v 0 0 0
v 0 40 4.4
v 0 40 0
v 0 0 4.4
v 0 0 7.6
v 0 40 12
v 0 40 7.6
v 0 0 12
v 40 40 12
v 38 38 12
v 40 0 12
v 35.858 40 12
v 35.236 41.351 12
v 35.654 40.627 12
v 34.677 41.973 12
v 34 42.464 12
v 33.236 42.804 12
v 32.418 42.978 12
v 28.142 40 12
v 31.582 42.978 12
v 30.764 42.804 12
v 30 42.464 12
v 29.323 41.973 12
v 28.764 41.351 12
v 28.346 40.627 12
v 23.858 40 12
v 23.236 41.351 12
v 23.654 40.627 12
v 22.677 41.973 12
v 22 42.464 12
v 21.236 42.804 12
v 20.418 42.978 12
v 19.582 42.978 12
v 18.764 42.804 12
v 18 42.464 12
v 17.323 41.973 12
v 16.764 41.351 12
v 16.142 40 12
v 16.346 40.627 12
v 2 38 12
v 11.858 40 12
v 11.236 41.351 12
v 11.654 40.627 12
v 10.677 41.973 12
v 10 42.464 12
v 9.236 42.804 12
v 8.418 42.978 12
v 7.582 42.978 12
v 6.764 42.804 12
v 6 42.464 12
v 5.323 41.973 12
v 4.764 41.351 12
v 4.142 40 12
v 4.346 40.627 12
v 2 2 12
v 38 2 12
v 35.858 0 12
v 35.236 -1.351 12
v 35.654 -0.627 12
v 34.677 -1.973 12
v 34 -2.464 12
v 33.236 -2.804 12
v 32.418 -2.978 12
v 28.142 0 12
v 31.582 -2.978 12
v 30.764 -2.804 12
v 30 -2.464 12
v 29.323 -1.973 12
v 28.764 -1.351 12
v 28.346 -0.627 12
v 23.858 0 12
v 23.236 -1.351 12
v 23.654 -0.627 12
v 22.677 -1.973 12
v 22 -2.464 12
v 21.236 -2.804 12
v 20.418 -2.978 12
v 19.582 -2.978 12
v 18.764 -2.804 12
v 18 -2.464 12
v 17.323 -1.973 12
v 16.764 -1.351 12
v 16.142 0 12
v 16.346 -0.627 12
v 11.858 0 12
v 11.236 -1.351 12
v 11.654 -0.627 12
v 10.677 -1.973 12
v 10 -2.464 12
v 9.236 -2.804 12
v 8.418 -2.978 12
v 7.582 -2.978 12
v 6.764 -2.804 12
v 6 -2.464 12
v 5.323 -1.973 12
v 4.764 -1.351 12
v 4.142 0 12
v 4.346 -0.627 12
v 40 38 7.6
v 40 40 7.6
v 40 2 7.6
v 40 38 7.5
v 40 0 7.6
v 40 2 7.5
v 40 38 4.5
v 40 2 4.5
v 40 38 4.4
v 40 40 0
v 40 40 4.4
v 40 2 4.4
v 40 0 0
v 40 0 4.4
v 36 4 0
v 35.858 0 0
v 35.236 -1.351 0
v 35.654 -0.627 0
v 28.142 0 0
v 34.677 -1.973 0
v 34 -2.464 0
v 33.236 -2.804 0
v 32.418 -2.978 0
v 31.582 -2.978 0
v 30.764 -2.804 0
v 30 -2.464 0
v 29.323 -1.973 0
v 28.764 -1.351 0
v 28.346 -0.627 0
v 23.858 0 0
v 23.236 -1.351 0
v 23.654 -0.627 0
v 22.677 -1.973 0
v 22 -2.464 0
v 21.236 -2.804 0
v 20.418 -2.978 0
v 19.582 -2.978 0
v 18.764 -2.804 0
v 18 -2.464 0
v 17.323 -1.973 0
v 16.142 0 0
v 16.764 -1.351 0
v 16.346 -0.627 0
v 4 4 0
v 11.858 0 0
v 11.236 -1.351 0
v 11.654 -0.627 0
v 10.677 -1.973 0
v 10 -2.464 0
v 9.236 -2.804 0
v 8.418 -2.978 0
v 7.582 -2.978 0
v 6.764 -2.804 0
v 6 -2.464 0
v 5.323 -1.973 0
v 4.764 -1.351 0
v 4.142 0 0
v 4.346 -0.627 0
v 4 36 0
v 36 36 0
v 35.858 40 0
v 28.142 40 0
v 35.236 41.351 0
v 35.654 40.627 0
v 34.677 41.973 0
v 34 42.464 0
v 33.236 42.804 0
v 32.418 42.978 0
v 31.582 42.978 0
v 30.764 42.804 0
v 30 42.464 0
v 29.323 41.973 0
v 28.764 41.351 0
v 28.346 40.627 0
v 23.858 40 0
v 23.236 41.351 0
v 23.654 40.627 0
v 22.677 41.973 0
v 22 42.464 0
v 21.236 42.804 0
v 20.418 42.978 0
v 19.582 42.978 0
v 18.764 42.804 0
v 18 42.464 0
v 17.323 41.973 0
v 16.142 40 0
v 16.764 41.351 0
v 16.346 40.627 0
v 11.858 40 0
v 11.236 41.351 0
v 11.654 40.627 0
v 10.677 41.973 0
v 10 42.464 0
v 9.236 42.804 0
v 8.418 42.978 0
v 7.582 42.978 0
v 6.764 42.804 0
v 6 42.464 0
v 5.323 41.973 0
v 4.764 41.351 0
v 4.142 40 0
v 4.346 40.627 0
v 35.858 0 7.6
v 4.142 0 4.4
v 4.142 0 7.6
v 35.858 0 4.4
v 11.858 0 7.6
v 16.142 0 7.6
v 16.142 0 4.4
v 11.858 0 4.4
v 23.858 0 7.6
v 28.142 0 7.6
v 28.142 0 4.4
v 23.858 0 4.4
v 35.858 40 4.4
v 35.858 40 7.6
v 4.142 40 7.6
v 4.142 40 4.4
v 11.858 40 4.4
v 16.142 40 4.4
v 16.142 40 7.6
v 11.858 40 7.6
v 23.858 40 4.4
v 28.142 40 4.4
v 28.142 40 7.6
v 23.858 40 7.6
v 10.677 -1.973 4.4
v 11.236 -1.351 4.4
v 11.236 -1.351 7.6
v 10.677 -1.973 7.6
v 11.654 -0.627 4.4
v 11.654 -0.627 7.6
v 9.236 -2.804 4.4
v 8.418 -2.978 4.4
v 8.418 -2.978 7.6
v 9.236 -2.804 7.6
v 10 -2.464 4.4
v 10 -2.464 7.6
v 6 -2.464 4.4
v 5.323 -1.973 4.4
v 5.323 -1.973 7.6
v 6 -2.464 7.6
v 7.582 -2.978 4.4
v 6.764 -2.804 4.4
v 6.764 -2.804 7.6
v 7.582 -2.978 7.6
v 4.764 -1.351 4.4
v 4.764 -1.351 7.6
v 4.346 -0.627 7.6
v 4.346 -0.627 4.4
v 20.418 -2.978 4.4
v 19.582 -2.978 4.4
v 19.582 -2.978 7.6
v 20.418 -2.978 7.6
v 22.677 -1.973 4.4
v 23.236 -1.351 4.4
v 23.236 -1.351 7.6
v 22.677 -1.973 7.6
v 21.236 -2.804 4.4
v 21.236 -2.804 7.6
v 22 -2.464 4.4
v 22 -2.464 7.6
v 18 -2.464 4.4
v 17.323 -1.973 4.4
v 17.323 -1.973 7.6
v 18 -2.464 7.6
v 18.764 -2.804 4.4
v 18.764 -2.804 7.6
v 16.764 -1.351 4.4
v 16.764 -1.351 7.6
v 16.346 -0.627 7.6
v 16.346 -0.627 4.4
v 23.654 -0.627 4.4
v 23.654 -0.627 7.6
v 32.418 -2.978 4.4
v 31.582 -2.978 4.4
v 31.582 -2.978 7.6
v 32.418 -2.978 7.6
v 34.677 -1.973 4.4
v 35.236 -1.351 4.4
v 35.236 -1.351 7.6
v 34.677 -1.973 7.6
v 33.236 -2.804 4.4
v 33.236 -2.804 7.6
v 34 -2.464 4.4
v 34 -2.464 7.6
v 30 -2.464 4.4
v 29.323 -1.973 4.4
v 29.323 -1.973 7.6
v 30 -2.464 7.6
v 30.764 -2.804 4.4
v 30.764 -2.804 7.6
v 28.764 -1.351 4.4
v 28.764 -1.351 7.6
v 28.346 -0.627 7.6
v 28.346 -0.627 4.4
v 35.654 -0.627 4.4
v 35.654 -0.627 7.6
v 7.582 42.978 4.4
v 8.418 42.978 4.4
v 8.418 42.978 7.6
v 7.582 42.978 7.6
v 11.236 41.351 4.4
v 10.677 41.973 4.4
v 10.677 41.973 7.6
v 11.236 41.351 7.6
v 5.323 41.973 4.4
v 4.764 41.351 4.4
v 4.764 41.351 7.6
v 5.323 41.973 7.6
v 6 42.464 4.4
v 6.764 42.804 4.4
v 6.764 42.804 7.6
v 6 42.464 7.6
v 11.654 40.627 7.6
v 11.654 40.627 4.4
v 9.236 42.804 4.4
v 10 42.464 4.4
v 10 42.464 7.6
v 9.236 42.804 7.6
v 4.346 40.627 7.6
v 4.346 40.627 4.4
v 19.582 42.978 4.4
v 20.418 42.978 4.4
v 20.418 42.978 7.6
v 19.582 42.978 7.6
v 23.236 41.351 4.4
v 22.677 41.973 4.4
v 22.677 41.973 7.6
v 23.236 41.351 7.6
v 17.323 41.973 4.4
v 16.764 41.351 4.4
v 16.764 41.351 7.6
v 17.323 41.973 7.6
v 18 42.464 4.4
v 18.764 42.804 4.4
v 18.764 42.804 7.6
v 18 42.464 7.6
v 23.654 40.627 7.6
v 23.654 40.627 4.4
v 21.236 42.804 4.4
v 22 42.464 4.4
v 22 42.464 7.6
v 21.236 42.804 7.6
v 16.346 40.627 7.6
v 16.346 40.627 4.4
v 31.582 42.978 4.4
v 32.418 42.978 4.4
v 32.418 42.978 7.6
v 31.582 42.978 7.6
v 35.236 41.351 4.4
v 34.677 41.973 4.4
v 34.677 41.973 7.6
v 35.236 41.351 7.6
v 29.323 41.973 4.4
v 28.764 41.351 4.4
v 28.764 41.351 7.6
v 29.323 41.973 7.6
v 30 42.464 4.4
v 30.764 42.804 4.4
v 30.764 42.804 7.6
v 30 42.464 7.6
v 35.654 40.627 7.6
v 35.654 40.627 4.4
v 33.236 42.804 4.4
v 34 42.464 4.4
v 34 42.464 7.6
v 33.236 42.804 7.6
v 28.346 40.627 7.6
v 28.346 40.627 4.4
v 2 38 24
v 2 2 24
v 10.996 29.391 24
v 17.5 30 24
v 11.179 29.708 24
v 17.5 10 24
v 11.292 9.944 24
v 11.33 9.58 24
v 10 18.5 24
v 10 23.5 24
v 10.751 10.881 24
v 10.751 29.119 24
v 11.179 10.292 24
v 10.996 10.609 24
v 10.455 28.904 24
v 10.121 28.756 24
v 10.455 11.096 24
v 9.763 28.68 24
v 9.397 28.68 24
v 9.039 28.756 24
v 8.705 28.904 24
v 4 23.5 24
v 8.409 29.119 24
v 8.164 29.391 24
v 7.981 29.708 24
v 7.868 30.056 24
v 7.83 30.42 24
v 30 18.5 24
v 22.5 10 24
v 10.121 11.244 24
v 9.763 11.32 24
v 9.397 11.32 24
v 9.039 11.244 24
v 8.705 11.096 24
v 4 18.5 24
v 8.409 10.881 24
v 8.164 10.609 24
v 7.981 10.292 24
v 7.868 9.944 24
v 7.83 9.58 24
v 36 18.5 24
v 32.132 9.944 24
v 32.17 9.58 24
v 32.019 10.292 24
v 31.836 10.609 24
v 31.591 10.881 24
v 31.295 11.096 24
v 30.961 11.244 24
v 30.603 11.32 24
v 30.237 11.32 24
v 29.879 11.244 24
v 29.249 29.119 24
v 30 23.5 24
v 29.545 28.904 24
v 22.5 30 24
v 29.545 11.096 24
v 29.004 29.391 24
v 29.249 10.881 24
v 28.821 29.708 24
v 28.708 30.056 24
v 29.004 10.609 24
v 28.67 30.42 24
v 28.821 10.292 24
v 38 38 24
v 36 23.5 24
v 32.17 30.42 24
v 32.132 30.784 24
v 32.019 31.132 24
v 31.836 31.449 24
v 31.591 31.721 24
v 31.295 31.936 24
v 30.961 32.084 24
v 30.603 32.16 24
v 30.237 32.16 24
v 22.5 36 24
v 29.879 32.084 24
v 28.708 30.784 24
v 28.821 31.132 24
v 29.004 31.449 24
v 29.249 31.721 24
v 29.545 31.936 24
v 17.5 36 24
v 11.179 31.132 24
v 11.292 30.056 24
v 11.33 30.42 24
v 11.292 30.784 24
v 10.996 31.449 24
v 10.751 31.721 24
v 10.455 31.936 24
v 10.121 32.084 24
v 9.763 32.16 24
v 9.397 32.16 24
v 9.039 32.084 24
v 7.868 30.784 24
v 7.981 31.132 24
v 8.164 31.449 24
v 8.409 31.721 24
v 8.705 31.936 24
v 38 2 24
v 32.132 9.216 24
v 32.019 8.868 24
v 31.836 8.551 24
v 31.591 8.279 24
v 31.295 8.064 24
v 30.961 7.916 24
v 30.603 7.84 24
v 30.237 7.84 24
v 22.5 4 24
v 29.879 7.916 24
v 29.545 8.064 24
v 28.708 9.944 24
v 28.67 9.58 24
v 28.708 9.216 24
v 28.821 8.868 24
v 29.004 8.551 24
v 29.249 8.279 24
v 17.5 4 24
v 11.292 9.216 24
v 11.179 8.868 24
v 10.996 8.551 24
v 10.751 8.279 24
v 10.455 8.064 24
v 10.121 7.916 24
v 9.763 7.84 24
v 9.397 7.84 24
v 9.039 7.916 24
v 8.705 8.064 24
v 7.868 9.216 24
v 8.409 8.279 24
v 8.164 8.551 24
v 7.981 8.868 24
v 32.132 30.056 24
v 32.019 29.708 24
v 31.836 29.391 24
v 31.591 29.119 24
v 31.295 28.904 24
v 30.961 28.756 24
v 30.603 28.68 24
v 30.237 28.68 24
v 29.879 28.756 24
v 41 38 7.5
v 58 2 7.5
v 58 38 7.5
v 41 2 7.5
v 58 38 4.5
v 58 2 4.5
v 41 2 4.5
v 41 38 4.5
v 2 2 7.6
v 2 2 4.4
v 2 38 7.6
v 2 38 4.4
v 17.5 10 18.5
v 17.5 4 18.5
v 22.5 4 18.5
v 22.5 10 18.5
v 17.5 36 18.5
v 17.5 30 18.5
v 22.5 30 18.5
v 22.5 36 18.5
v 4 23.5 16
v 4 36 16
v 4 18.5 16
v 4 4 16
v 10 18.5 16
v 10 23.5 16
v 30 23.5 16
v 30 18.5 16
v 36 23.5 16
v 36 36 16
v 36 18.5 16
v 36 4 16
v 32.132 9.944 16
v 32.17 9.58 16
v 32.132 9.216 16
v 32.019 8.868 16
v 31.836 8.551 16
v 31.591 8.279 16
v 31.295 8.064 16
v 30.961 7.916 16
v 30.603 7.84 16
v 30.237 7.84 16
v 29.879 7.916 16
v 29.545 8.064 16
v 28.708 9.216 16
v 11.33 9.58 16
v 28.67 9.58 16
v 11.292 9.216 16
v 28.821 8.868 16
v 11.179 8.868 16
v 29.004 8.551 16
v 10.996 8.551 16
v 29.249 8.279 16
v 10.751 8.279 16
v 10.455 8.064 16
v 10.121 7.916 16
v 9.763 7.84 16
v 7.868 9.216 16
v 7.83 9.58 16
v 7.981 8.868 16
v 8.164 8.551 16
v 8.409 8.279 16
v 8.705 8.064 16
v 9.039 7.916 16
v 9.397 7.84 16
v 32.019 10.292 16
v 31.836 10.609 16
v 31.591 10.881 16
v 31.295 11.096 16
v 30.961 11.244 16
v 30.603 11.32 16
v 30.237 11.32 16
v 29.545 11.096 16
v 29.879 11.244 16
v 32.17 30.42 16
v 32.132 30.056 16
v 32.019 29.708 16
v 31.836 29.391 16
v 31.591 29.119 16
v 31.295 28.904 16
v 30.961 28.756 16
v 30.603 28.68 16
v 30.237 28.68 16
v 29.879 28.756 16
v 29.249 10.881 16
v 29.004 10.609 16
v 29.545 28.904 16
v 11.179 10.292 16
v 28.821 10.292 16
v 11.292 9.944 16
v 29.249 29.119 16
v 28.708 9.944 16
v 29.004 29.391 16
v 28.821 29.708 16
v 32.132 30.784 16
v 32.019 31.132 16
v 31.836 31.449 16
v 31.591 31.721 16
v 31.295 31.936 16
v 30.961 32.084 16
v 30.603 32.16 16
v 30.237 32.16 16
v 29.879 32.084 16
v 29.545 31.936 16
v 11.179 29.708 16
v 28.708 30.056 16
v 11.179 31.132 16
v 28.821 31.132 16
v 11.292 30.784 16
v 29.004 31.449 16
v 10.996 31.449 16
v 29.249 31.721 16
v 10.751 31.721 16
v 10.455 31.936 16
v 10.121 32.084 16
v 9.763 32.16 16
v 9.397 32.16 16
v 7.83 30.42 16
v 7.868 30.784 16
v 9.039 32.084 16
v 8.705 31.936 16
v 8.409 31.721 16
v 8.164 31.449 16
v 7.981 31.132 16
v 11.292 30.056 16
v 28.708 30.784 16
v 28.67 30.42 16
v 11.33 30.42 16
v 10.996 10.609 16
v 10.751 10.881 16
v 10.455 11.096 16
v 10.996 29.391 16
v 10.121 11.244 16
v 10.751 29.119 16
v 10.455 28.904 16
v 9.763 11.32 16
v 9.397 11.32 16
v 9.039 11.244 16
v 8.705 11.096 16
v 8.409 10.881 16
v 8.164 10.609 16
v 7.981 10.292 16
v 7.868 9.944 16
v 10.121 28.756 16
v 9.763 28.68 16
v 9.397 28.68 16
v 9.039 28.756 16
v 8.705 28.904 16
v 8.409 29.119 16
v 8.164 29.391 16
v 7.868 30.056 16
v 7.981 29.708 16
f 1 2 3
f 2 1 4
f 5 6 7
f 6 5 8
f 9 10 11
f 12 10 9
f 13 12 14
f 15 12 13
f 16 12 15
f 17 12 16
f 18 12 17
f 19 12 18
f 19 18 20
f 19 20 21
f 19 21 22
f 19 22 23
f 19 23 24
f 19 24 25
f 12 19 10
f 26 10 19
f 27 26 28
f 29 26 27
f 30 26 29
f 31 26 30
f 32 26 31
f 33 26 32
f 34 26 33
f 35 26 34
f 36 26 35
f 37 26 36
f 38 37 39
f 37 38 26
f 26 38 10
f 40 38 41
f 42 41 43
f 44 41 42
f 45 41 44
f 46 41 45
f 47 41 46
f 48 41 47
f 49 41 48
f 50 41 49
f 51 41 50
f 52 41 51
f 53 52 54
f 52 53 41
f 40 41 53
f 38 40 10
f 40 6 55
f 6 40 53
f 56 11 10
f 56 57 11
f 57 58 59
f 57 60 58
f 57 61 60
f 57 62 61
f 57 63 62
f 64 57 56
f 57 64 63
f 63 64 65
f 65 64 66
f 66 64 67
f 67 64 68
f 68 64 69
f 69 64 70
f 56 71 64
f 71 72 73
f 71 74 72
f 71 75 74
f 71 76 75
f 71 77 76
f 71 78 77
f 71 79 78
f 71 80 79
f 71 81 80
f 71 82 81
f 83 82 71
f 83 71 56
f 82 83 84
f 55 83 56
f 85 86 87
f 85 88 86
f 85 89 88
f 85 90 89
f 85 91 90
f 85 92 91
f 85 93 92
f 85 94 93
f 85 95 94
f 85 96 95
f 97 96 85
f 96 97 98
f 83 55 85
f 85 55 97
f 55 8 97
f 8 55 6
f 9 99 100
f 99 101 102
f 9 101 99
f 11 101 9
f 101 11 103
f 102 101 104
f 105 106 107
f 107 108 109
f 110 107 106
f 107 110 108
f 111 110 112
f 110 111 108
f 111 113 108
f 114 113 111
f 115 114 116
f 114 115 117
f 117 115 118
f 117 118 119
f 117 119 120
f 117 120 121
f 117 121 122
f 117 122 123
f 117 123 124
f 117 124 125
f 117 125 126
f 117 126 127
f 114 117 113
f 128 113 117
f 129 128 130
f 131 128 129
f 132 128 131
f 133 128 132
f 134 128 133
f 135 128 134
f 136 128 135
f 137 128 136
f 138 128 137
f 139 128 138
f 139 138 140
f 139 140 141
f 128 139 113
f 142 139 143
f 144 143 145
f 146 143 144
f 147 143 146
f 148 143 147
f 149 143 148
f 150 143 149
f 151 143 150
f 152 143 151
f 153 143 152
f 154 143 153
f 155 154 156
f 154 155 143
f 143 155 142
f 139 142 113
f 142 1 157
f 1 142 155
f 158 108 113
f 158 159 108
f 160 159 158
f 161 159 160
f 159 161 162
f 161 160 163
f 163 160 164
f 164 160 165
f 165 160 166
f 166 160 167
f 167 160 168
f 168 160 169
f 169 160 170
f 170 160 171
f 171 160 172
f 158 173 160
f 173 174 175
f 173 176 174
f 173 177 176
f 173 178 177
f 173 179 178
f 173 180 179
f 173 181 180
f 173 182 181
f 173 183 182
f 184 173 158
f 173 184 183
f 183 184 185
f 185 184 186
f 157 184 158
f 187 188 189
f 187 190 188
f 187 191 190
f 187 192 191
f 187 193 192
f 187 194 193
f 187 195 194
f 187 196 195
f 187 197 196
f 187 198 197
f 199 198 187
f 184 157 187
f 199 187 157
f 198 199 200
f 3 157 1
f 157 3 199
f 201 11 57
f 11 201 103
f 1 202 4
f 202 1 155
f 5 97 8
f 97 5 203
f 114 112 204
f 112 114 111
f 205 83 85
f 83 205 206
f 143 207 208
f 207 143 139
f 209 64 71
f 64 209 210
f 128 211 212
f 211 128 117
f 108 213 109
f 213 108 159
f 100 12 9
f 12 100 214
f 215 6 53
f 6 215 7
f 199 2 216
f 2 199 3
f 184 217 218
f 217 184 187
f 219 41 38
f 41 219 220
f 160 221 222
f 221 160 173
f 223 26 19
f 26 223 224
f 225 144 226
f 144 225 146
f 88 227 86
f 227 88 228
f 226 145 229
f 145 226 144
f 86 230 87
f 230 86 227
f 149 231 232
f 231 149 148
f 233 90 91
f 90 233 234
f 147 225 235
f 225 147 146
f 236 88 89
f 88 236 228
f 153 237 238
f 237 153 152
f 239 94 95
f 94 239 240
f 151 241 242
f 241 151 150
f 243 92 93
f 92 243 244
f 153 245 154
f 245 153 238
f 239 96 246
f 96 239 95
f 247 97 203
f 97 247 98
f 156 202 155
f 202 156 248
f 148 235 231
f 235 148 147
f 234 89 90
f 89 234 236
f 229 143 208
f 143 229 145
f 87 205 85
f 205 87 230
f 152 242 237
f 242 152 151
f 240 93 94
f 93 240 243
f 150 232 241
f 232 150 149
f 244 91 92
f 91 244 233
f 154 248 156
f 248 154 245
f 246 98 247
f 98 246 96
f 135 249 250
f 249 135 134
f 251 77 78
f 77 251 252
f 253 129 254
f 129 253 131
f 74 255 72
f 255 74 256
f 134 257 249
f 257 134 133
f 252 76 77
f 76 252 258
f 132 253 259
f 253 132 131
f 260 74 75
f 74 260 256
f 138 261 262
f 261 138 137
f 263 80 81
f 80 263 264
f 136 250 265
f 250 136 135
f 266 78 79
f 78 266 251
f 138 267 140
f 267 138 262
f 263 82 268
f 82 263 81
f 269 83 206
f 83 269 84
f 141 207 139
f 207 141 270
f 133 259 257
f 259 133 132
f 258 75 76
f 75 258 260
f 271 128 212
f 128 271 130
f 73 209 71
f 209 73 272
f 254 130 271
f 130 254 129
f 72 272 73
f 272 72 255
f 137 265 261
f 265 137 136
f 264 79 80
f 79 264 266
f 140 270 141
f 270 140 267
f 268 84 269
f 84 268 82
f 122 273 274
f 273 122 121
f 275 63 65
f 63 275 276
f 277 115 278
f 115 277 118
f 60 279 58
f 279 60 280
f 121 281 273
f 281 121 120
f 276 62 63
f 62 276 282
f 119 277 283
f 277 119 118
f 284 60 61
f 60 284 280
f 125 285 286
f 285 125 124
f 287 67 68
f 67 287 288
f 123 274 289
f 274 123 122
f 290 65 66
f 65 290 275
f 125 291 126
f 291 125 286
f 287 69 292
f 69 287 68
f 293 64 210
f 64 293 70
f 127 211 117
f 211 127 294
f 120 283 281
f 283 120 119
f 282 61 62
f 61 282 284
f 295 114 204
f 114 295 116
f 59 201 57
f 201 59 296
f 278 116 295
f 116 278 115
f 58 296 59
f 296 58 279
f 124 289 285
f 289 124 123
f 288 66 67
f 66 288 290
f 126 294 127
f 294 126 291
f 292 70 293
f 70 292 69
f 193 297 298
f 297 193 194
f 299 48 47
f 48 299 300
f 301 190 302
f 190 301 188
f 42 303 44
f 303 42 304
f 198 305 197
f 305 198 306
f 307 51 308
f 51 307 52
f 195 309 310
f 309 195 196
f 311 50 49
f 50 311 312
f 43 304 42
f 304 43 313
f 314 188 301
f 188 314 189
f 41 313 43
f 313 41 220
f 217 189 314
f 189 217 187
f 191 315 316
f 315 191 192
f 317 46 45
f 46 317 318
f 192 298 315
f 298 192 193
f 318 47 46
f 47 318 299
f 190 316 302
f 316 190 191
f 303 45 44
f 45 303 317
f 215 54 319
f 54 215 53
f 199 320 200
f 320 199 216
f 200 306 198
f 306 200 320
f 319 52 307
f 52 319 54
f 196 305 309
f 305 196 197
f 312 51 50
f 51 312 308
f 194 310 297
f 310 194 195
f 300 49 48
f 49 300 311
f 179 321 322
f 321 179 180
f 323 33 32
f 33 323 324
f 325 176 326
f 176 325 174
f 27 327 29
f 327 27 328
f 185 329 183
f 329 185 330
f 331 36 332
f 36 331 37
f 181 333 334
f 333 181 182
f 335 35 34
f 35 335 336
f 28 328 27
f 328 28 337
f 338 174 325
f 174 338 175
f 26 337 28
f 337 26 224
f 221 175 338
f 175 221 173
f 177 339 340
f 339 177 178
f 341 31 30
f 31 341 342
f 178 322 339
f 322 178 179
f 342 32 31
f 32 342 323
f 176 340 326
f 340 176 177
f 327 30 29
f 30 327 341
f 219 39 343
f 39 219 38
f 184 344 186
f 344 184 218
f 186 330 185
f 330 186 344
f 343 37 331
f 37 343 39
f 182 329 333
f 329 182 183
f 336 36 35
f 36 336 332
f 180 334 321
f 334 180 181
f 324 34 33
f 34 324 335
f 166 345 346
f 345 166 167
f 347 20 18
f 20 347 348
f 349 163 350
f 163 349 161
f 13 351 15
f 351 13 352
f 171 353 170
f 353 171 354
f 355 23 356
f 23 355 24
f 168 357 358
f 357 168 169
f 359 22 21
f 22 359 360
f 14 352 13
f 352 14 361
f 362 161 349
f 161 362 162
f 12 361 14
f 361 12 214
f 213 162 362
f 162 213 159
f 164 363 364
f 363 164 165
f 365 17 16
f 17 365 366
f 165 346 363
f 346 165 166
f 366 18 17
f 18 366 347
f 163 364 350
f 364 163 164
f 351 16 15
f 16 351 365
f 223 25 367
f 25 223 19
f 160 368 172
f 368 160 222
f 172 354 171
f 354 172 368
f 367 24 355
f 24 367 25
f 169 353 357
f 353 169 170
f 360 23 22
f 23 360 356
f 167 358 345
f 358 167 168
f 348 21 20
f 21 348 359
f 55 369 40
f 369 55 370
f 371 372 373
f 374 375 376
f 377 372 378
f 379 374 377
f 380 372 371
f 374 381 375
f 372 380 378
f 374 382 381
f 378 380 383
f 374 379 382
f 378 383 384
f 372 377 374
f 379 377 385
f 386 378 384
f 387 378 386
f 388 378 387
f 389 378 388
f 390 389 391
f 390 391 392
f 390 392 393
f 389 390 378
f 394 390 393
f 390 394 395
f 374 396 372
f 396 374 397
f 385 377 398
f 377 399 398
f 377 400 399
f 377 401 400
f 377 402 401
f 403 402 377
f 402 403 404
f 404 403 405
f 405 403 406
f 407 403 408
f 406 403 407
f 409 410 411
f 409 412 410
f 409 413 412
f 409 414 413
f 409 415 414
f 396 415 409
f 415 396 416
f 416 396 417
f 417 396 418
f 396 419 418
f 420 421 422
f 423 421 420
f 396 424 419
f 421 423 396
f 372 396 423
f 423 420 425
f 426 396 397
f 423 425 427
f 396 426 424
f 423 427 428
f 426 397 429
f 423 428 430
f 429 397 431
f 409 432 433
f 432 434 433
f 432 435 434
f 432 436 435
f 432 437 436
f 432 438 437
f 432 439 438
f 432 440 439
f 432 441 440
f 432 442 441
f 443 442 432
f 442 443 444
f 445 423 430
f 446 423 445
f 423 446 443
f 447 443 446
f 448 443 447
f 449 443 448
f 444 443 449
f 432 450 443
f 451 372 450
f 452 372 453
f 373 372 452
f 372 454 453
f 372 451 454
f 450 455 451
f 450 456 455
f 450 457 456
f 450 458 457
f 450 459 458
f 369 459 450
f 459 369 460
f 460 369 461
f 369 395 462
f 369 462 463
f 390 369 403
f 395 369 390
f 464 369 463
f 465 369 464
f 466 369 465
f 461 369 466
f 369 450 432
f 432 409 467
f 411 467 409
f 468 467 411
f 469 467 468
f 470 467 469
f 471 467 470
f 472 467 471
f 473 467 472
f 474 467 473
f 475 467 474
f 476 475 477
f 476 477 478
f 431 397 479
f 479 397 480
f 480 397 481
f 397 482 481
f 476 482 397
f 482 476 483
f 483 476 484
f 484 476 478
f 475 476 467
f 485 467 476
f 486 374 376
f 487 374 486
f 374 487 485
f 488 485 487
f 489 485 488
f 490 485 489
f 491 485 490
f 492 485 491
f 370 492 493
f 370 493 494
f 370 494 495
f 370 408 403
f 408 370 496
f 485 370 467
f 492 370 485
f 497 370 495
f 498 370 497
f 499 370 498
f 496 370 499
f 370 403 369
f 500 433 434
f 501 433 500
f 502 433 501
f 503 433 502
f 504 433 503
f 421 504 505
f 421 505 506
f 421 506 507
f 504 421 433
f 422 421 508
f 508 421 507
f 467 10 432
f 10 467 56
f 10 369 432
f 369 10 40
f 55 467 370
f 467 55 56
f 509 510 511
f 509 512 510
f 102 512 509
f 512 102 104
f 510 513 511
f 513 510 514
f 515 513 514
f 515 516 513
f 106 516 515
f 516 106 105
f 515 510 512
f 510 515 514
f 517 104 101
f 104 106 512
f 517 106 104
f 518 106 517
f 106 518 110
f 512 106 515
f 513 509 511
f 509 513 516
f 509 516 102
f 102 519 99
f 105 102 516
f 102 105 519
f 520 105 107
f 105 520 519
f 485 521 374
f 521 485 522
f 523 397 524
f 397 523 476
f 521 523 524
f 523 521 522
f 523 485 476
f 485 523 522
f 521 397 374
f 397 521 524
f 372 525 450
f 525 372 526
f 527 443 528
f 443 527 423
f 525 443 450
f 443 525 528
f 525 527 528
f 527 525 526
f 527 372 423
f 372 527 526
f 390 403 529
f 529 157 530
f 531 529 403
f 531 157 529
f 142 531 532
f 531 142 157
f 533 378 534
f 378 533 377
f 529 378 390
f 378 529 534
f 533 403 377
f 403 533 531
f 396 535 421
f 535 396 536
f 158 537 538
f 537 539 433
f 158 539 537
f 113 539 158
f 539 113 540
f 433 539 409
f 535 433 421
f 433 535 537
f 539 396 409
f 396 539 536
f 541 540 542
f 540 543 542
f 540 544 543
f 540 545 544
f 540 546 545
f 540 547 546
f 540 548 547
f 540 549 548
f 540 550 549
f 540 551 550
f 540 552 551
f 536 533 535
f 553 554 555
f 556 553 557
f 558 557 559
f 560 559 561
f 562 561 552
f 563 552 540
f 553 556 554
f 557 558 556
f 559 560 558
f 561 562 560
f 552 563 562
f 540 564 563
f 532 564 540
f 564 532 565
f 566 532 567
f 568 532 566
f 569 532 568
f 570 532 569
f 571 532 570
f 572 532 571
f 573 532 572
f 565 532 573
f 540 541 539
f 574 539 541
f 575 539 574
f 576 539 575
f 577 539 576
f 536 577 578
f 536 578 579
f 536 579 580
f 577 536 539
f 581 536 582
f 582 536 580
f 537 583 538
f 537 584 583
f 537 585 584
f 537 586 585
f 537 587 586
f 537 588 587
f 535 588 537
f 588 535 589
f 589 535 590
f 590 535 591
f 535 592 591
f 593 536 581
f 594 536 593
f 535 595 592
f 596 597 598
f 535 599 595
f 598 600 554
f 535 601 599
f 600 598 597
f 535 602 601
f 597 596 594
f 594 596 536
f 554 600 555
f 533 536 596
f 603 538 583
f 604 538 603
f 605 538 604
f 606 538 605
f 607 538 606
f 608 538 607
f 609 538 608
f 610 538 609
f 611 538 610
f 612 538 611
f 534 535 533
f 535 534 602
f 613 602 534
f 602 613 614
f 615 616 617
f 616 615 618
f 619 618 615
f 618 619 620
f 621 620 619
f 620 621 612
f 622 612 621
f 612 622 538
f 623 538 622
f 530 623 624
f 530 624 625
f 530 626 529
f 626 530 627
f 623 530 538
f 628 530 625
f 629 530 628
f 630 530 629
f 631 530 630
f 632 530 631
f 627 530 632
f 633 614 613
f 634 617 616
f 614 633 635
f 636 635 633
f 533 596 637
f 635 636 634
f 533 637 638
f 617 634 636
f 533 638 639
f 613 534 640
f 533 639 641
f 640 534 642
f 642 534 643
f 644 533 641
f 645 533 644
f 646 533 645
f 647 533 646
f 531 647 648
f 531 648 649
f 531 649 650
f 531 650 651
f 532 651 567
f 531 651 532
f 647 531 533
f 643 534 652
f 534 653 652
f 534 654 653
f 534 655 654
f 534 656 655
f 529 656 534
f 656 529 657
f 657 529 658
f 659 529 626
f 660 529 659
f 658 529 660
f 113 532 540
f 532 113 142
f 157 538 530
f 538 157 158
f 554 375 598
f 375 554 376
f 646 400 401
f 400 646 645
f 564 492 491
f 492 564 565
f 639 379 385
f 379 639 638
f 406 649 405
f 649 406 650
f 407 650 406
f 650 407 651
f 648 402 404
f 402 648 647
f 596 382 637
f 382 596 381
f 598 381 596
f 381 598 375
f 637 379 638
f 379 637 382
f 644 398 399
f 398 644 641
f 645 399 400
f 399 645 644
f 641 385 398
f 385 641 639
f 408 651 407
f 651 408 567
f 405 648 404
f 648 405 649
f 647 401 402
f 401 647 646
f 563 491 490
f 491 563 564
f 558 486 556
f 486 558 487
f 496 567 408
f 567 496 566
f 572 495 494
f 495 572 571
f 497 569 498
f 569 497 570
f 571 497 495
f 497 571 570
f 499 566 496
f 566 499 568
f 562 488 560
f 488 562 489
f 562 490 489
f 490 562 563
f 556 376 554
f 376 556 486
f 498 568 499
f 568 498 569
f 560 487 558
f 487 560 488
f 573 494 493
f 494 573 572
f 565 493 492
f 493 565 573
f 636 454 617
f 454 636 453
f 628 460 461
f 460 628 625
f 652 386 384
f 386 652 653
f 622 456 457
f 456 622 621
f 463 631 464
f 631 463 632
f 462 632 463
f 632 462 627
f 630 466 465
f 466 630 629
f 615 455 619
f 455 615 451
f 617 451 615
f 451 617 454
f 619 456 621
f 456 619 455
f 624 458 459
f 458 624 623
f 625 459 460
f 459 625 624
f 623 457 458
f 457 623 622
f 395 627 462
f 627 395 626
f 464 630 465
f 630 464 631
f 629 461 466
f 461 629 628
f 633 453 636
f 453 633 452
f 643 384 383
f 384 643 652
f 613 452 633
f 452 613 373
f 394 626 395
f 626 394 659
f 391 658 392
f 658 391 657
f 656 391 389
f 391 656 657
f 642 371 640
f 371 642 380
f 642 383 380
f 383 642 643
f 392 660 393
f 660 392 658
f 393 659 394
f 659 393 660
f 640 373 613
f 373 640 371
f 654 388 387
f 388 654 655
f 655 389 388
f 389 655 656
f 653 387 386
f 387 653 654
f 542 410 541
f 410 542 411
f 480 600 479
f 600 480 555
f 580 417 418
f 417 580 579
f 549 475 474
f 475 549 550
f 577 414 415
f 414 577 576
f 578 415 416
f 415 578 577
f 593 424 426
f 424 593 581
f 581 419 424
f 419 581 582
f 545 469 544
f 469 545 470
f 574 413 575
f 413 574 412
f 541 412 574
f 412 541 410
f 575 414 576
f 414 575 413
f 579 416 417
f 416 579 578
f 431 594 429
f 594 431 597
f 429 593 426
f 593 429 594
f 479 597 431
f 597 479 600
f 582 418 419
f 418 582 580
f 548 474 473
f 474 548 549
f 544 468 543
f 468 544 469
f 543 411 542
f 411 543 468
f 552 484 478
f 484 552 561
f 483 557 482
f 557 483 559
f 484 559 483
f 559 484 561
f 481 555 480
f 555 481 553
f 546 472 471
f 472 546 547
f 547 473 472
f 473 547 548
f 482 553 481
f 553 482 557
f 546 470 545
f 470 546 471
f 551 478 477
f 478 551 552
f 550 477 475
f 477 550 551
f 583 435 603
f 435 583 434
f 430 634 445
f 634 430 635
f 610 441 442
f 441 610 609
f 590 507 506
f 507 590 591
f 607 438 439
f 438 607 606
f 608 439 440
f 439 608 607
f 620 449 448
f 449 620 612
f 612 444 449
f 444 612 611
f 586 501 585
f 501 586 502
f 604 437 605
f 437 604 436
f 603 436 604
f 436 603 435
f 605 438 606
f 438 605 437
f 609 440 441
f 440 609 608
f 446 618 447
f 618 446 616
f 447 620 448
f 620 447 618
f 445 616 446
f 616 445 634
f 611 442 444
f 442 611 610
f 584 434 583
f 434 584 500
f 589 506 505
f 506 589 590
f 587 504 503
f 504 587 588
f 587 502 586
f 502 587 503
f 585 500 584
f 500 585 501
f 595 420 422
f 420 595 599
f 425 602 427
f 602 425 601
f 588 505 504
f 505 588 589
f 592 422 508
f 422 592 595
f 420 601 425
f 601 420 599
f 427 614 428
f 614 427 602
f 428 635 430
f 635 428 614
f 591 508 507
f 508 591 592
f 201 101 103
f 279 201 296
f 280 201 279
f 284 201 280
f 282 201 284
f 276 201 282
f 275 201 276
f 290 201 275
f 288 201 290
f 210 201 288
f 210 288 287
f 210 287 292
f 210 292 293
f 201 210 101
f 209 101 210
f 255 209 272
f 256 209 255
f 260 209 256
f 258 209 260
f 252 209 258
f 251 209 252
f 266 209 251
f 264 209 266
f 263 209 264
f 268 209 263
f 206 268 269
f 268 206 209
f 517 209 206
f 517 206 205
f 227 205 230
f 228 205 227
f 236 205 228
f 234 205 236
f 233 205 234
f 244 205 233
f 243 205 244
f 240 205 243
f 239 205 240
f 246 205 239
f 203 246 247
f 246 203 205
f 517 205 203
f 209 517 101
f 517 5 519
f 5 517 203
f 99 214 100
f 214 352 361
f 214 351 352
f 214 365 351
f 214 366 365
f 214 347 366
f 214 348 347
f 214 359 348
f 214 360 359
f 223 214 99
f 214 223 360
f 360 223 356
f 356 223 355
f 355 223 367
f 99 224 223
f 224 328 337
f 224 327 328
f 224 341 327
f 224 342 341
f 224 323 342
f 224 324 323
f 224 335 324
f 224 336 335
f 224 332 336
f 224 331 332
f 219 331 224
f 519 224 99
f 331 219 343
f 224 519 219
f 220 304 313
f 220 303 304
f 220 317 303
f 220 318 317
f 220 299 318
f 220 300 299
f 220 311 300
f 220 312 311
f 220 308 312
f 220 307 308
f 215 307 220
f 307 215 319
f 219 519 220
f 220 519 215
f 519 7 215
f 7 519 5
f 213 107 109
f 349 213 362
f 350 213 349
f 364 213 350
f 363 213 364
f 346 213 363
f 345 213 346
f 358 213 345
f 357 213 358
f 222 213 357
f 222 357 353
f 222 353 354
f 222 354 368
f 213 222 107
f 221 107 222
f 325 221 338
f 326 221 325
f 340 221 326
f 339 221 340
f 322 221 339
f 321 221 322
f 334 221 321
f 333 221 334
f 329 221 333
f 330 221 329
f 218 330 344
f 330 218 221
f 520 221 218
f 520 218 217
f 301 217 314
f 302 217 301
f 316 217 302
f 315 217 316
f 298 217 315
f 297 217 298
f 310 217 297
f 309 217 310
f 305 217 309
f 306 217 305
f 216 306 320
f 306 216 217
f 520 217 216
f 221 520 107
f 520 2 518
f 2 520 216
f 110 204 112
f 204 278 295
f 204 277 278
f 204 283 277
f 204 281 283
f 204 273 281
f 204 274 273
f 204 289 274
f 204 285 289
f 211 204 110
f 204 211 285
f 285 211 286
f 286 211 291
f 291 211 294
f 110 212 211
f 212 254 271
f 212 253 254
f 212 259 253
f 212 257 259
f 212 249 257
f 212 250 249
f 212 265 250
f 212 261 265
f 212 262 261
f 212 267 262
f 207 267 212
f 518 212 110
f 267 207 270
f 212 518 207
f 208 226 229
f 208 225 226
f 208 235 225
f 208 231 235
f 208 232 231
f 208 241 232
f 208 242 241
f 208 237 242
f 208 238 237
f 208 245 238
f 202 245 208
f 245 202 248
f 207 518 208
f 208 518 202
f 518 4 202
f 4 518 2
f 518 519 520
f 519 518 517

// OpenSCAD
//Mindware Start-up circuits
//Power pin module
//one circuit board 8mm from face 1mm thick m3 mountin machine screws
//m4 screws were used for CBA STM32 case
//holes for banana jacks are 8mm diameter
m4Radius = 3.5/2; // centre 4mm or more from edge, KiCad 5.08mm or 0.2"
holeOffset = 5.08;
$fn=30;
difference(){
    union(){
        cube([40,40,12]);
        translate([8,1,0]){
            cylinder(12,4,4);
        }
        translate([20,1,0]){
            cylinder(12,4,4);
        }
        translate([32,1,0]){
            cylinder(12,4,4);
        }
        translate([8,39,0]){
            cylinder(12,4,4);
        }
        translate([20,39,0]){
            cylinder(12,4,4);
        }
        translate([32,39,0]){
            cylinder(12,4,4);
        }
        translate([2,2,12]){
            cube([36,36,12]);
        }
        //acrylic tab
        translate([38,2,4.5]){
            cube([(76-40)/2+2,36,3]);
        }    
    }
    translate([20-5/2,4,24-5.5]){
        cube([5,6,6]);
    }    
    translate([20-5/2,30,24-5.5]){
        cube([5,6,6]);
    }    
    translate([4,20-3/2,24-9]){
        cube([6,5,10]);
    }    
    translate([30,20-3/2,24-9]){
        cube([6,5,10]);
    }
    translate([2+2.5-0.5,2+2.5-0.5,-1]){
        //pcb cube([31,31,1]);
        cube([32,32,24+1-8]);
    }
    translate([2+2.5+holeOffset,2+2.5+holeOffset,0]){
        cylinder(24,m4Radius,m4Radius);
    }
    translate([2+2.5+holeOffset,40-(2+2.5+holeOffset),0]){
        cylinder(24,m4Radius,m4Radius);
    }
    translate([40-(2+2.5+holeOffset),2+2.5+holeOffset,0]){
        cylinder(24,m4Radius,m4Radius);
    }
    translate([40-(2+2.5+holeOffset),40-(2+2.5+holeOffset),0]){
        cylinder(24,m4Radius,m4Radius);
    }
    //acrylic slot
    translate([-1,-3,4.4]){
        cube([42,5,3.2]);
    }
    translate([-1,-1,4.4]){
        cube([3,42,3.2]);
    }
    translate([-1,38,4.4]){
        cube([42,5,3.2]);
    }    
}
